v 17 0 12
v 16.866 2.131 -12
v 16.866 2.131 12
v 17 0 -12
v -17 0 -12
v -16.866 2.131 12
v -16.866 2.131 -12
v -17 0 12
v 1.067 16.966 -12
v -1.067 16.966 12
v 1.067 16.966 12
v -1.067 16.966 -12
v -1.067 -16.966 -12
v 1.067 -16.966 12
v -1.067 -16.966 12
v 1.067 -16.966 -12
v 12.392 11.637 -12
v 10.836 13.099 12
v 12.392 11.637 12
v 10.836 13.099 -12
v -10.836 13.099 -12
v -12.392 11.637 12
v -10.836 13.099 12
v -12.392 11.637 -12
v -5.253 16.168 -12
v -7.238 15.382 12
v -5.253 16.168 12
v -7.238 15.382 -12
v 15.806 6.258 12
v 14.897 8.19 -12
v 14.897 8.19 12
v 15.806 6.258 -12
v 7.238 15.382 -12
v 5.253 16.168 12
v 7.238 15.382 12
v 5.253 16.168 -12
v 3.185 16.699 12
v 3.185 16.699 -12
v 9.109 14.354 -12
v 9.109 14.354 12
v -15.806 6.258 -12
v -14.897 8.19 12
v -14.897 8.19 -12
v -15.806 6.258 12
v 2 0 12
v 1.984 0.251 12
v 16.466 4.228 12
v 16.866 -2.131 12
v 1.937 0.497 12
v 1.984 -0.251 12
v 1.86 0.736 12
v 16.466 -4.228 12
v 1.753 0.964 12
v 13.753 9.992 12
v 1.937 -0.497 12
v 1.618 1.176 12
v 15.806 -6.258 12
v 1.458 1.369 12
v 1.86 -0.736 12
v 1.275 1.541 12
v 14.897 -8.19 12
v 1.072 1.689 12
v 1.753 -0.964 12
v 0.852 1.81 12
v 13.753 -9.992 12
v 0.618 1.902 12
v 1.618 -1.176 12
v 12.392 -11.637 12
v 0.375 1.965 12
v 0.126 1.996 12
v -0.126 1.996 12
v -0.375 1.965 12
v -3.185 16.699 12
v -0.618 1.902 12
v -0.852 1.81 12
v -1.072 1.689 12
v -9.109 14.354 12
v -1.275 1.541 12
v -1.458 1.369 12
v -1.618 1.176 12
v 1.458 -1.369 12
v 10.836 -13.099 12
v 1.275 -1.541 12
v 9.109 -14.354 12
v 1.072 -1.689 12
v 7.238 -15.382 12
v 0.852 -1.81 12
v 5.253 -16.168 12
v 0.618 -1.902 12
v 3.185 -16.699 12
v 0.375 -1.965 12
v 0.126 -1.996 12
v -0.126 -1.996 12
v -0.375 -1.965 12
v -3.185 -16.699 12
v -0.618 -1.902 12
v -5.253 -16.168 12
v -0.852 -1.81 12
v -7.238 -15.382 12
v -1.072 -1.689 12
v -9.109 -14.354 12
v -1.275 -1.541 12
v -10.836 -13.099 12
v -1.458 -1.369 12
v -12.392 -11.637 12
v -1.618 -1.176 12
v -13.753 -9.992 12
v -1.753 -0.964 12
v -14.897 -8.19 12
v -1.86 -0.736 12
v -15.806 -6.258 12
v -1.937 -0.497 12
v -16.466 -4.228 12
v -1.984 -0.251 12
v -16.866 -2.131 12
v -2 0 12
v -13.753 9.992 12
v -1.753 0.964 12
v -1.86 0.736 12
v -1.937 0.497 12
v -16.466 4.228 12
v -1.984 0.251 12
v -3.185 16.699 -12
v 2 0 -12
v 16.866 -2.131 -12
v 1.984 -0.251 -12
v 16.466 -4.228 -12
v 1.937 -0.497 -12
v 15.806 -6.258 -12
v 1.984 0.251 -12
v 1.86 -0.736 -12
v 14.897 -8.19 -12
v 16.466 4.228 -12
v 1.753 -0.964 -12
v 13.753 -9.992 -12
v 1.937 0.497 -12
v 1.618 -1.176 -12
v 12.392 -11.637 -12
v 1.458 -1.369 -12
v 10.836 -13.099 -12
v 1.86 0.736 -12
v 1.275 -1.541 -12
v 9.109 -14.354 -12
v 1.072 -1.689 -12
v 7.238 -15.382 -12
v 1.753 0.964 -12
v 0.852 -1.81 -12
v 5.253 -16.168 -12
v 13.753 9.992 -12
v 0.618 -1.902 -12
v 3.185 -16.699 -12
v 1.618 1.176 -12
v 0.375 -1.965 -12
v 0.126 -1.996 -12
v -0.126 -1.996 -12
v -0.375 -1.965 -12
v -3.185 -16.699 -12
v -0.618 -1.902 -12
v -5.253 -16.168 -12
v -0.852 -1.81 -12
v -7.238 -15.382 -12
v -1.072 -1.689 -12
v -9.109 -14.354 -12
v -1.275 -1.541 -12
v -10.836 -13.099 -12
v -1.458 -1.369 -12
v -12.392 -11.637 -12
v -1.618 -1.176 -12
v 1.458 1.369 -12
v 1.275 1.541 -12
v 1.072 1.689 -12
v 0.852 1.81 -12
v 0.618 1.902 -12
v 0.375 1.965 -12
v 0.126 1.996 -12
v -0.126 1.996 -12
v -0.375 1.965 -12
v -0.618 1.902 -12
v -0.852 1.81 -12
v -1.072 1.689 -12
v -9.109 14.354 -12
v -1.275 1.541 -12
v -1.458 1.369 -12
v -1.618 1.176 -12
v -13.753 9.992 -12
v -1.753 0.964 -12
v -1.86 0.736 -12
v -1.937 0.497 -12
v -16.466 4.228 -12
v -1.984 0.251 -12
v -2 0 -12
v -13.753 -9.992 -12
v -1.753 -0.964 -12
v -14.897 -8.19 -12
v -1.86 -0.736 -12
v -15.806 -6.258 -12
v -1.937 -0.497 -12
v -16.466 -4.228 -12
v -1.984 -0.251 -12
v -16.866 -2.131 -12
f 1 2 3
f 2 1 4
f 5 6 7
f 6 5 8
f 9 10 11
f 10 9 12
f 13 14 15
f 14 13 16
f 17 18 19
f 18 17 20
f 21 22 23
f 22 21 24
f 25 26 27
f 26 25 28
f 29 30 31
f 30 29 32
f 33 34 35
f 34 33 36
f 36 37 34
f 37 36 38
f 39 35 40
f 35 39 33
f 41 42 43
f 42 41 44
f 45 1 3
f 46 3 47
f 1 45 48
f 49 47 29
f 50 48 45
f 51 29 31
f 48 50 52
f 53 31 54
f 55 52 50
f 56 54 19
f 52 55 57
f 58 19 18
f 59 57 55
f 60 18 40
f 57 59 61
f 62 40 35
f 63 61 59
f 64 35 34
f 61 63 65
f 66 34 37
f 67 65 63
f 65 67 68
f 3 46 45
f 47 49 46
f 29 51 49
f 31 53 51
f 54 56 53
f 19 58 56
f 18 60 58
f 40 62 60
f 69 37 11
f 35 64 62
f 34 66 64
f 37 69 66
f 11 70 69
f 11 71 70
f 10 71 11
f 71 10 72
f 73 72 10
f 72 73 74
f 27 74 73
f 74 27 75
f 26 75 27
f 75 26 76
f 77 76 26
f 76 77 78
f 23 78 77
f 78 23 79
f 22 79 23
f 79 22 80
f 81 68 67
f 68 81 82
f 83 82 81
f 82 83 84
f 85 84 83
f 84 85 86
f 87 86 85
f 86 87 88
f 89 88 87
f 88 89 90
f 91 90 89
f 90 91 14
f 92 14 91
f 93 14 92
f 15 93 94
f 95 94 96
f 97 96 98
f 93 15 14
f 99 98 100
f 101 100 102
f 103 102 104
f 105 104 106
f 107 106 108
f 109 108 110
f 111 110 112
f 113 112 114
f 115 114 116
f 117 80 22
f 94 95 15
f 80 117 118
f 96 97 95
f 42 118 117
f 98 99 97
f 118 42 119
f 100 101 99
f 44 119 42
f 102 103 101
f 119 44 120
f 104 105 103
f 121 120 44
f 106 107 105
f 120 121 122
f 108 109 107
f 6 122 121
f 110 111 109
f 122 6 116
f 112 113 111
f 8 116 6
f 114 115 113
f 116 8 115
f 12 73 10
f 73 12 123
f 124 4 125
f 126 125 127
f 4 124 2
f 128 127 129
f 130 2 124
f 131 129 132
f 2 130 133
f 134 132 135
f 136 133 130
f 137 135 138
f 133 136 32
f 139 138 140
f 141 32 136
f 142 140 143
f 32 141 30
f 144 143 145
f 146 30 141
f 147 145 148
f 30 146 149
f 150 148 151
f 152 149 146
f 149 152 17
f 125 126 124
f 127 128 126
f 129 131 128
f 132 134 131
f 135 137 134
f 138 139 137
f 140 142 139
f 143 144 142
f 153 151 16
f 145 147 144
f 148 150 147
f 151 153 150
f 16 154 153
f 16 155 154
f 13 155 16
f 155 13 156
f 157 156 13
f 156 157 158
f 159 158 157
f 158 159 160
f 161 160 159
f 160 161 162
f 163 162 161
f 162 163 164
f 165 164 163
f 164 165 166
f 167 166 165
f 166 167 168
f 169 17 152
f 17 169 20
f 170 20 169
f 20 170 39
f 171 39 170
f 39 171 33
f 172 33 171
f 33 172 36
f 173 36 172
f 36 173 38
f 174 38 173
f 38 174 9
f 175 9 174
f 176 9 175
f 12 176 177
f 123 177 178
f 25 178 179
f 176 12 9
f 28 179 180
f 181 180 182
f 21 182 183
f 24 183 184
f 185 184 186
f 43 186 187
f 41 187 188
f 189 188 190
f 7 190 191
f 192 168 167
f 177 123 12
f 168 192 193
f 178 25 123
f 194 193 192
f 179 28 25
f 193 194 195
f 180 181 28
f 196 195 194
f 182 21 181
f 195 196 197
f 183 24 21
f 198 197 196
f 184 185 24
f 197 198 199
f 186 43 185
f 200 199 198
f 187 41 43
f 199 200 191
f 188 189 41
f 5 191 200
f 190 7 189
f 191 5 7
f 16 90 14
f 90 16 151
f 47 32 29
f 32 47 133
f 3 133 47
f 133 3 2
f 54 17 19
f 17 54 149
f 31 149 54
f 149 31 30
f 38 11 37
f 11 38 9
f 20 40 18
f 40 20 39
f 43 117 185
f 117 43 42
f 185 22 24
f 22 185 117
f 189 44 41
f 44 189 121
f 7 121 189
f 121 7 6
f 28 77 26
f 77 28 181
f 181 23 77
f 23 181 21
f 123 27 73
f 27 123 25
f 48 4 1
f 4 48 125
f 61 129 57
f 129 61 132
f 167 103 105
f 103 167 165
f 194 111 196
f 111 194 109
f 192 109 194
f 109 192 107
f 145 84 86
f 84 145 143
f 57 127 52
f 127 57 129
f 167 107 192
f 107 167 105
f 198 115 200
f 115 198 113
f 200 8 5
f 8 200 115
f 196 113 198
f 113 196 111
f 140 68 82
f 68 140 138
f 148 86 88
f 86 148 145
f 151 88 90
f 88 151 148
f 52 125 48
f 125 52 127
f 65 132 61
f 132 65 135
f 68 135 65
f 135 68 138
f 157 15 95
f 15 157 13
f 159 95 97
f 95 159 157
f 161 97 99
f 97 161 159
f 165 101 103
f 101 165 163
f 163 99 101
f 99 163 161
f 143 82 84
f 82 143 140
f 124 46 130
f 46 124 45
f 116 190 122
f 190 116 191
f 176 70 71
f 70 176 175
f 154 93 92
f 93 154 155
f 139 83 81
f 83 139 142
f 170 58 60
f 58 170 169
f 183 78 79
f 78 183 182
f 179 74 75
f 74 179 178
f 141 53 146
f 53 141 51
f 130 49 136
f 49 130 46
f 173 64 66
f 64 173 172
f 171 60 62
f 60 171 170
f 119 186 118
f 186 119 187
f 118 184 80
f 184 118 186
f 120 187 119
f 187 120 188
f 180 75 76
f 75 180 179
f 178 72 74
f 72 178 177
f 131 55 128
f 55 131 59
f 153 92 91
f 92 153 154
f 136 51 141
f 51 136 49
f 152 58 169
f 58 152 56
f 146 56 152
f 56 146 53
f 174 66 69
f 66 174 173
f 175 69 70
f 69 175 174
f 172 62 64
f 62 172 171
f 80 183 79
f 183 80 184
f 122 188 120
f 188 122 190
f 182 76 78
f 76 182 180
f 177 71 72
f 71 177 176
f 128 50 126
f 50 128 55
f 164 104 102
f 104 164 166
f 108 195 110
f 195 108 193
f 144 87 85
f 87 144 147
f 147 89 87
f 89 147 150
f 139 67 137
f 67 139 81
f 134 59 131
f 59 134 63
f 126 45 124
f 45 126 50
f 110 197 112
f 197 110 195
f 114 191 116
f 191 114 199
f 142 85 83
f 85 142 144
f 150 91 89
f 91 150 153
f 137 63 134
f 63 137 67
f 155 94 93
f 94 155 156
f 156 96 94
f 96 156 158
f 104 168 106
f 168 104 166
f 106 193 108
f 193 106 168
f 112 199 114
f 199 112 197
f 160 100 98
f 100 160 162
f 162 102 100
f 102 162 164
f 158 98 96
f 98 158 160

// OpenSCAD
$fn = 50;


difference() {
	union() {
		translate(v = [0, 0, -12.0000000000]) {
			cylinder(h = 24, r = 17.0000000000);
		}
	}
	union() {
		translate(v = [0, 0, -100.0000000000]) {
			cylinder(h = 200, r = 2.0000000000);
		}
	}
}
